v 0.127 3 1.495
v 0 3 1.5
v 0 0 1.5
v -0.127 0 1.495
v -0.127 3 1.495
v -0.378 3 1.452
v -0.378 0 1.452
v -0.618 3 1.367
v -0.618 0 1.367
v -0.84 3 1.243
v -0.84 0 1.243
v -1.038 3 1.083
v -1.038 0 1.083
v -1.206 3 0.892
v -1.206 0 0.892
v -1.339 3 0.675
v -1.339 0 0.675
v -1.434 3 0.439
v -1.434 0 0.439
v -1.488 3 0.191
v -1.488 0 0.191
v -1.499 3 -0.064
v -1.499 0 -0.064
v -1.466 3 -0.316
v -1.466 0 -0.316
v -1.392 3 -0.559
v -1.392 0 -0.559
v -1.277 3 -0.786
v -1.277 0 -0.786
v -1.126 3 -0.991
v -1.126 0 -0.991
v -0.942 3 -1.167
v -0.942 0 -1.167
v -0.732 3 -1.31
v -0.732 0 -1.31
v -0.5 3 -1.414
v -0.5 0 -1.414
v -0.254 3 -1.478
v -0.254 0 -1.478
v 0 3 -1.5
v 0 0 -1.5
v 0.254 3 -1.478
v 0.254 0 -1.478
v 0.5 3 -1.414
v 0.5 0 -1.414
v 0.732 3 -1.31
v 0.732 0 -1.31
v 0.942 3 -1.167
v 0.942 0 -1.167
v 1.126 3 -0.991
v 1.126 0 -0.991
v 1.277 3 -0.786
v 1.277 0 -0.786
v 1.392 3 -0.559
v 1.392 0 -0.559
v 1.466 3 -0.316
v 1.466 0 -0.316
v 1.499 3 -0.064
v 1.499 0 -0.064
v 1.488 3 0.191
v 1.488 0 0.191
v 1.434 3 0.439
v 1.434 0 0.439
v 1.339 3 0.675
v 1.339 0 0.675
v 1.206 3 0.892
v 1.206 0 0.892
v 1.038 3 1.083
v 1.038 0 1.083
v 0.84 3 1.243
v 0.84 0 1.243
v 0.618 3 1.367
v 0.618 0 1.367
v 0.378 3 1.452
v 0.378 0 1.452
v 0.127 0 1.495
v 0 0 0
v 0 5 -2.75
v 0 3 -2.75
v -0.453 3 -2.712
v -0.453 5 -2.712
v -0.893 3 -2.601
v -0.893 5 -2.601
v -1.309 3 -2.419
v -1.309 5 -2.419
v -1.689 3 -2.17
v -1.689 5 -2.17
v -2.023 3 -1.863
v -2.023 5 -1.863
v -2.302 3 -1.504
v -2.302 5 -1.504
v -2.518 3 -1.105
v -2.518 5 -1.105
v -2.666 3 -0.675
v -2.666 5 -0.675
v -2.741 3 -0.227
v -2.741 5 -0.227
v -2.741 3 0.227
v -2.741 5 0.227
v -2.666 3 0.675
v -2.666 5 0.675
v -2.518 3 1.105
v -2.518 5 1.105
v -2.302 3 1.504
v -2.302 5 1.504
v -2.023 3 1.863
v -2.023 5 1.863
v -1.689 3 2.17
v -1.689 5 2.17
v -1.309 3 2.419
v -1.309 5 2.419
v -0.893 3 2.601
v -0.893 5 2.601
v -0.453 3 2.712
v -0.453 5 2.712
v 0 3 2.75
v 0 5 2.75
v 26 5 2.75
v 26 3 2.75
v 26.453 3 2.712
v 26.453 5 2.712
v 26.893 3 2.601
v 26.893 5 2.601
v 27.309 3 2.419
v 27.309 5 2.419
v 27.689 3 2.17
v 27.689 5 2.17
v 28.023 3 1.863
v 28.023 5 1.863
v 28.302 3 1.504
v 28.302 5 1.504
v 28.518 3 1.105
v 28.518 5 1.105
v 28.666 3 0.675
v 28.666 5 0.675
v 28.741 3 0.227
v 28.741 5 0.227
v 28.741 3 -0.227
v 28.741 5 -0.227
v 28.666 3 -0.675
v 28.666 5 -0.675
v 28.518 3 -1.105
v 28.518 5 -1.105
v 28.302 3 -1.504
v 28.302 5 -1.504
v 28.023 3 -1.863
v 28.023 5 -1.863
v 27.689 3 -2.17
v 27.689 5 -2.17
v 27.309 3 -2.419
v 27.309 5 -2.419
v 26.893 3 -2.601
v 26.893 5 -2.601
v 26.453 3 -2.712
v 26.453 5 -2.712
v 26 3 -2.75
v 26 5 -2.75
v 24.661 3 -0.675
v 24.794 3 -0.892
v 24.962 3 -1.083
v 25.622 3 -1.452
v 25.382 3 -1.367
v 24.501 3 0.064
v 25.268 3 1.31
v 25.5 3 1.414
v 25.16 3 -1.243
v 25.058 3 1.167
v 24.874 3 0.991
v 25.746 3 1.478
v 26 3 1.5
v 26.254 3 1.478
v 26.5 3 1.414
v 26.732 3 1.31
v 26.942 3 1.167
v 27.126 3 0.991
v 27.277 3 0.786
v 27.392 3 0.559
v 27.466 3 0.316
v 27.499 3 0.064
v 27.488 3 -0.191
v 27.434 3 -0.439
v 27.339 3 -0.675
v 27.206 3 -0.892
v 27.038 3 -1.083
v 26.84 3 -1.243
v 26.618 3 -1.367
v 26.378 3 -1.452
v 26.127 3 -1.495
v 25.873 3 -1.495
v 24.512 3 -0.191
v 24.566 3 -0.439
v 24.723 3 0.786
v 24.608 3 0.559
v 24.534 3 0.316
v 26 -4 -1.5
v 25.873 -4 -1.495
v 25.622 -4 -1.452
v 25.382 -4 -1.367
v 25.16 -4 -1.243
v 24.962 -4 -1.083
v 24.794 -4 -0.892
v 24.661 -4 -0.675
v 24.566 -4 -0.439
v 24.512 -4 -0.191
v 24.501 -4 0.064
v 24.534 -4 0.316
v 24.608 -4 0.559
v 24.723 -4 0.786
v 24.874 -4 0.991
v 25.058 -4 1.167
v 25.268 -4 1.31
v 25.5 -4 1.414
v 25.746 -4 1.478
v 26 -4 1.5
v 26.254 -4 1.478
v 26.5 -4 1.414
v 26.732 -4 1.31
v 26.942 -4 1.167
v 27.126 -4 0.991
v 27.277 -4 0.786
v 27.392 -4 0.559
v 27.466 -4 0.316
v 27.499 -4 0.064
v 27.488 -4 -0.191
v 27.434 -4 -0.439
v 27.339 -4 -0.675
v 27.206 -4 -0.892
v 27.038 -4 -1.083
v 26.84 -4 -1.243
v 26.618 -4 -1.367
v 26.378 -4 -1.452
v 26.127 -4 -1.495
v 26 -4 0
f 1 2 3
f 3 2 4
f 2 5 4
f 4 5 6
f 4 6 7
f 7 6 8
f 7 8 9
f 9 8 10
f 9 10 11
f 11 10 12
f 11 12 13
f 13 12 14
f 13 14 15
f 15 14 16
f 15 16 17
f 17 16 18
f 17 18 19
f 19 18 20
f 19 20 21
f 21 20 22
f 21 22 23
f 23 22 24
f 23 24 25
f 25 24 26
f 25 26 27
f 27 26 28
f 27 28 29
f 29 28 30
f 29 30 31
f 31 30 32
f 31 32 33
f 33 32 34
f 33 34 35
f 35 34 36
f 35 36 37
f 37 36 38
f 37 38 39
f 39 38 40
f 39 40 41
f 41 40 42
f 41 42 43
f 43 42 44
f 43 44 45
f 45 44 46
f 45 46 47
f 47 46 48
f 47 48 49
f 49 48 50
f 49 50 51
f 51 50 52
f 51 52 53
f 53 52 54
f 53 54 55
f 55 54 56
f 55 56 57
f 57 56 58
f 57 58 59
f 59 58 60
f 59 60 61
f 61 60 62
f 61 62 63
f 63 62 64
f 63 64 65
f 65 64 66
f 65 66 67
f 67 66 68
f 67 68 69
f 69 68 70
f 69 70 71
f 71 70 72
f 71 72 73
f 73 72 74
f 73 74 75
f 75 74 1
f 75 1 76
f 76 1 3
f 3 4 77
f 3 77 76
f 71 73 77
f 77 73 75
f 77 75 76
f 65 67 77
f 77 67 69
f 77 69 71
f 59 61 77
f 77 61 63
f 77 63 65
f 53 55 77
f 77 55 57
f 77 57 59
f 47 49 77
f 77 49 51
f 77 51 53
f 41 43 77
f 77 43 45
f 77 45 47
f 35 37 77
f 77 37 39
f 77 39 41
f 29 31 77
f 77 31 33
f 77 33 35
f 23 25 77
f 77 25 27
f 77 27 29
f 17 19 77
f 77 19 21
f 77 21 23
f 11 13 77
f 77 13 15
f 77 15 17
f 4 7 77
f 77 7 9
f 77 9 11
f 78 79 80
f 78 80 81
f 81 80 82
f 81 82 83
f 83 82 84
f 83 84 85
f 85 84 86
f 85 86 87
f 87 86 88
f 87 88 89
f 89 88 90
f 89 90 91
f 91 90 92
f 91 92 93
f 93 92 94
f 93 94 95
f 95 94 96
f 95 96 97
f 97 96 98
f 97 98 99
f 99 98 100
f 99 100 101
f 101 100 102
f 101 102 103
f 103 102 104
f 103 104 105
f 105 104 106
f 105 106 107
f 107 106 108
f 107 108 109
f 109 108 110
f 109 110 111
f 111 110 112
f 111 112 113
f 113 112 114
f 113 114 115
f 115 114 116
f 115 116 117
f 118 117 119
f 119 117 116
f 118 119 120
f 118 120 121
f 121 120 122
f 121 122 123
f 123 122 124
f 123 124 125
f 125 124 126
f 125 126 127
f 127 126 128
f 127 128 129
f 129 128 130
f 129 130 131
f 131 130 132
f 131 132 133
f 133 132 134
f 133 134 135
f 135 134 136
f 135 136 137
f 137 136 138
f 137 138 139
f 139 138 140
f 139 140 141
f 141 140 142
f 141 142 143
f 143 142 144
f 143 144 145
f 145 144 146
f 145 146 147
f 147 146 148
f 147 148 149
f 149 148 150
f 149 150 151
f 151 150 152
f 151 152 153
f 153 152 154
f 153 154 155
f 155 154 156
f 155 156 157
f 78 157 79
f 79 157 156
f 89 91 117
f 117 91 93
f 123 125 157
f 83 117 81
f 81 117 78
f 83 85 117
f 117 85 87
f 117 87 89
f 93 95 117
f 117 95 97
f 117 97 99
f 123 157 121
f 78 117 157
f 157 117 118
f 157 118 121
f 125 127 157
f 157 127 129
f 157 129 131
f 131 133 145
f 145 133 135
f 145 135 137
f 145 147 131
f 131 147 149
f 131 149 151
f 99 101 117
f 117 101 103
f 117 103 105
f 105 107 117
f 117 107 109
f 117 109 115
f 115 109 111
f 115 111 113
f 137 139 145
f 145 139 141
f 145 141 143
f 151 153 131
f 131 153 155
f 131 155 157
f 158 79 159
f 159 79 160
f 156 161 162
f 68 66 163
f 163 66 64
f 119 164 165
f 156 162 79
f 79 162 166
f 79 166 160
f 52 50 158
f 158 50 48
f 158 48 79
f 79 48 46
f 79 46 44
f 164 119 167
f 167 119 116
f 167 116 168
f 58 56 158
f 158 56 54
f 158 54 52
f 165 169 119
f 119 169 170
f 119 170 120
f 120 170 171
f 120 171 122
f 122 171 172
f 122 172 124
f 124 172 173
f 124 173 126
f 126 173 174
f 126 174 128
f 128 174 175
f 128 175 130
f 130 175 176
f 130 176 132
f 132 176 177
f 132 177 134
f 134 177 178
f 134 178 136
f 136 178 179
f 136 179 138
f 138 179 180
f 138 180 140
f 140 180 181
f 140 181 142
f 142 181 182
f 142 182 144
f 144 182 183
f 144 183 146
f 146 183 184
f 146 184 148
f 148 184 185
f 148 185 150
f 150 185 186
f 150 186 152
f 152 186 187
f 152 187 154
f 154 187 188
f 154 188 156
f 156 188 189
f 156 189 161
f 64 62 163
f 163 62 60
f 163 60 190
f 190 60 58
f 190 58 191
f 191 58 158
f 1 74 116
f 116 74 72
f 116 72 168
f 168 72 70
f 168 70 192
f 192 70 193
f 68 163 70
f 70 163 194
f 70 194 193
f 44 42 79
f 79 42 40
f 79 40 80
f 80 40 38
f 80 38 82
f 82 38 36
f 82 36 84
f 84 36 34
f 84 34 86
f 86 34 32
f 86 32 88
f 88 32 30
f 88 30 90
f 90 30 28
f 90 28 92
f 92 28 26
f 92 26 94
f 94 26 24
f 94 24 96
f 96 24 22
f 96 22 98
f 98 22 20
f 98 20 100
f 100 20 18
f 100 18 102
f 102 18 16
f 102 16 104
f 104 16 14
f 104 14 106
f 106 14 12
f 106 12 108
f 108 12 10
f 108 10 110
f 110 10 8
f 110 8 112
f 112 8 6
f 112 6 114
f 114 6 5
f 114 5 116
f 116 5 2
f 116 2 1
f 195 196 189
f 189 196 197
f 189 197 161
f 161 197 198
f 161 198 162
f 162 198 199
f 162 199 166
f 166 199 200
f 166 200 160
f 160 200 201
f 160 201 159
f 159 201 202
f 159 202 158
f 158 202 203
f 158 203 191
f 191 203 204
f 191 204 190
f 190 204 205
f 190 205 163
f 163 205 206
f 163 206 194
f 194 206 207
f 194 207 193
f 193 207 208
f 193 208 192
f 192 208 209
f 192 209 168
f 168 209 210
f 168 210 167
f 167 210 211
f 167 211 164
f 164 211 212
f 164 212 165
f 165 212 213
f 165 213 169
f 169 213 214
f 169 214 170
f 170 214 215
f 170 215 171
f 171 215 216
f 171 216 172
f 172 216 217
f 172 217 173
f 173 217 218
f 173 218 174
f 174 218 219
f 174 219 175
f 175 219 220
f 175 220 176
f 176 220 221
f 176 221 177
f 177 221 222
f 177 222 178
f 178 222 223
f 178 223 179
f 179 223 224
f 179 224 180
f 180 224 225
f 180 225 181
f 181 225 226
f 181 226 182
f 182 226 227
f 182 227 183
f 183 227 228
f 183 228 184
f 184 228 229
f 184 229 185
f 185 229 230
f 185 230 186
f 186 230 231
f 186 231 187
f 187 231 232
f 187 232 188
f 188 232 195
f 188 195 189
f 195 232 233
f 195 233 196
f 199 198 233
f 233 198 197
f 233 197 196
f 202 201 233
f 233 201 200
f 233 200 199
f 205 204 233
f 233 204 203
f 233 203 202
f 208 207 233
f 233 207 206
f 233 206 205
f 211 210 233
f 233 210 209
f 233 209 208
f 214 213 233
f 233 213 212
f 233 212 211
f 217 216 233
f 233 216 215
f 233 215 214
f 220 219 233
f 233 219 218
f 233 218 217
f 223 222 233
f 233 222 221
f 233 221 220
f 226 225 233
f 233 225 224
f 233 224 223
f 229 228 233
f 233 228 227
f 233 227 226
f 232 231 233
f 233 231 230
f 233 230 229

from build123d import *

# Parameters (mm, degrees)
SKETCH1_R           = 1.5
BOSS_EXTRUDE1_DEPTH = 3
BOSS_EXTRUDE2_DEPTH = 2
SKETCH3_R           = 1.5
BOSS_EXTRUDE3_DEPTH = 7


with BuildPart() as part:
    # Sketch1 → Boss-Extrude1 (new body)
    with BuildSketch(Plane(origin=(0, 0, 0), x_dir=(1, 0, 0), z_dir=(0, 1, 0))):
        with Locations(Location((0, 0, 0), (0, 0, 270))):
            Circle(SKETCH1_R)
    extrude(amount=BOSS_EXTRUDE1_DEPTH)

    # Sketch2 → Boss-Extrude2 (add)
    with BuildSketch(Plane(origin=(0, 3, 0), x_dir=(1, 0, 0), z_dir=(0, 1, 0))):
        with BuildLine():
            Line((0, 2.75), (26, 2.75))
            ThreePointArc((26, 2.75), (28.75, 0), (26, -2.75))
            Line((26, -2.75), (0, -2.75))
            ThreePointArc((0, -2.75), (-2.75, 0), (0, 2.75))
        make_face()
    extrude(amount=BOSS_EXTRUDE2_DEPTH)

    # Sketch3 → Boss-Extrude3 (add)
    with BuildSketch(Plane.XZ.offset(-3)):
        with Locations(Location((26, 0, 0), (0, 0, 90))):
            Circle(SKETCH3_R)
    extrude(amount=BOSS_EXTRUDE3_DEPTH)


solid = part.part
